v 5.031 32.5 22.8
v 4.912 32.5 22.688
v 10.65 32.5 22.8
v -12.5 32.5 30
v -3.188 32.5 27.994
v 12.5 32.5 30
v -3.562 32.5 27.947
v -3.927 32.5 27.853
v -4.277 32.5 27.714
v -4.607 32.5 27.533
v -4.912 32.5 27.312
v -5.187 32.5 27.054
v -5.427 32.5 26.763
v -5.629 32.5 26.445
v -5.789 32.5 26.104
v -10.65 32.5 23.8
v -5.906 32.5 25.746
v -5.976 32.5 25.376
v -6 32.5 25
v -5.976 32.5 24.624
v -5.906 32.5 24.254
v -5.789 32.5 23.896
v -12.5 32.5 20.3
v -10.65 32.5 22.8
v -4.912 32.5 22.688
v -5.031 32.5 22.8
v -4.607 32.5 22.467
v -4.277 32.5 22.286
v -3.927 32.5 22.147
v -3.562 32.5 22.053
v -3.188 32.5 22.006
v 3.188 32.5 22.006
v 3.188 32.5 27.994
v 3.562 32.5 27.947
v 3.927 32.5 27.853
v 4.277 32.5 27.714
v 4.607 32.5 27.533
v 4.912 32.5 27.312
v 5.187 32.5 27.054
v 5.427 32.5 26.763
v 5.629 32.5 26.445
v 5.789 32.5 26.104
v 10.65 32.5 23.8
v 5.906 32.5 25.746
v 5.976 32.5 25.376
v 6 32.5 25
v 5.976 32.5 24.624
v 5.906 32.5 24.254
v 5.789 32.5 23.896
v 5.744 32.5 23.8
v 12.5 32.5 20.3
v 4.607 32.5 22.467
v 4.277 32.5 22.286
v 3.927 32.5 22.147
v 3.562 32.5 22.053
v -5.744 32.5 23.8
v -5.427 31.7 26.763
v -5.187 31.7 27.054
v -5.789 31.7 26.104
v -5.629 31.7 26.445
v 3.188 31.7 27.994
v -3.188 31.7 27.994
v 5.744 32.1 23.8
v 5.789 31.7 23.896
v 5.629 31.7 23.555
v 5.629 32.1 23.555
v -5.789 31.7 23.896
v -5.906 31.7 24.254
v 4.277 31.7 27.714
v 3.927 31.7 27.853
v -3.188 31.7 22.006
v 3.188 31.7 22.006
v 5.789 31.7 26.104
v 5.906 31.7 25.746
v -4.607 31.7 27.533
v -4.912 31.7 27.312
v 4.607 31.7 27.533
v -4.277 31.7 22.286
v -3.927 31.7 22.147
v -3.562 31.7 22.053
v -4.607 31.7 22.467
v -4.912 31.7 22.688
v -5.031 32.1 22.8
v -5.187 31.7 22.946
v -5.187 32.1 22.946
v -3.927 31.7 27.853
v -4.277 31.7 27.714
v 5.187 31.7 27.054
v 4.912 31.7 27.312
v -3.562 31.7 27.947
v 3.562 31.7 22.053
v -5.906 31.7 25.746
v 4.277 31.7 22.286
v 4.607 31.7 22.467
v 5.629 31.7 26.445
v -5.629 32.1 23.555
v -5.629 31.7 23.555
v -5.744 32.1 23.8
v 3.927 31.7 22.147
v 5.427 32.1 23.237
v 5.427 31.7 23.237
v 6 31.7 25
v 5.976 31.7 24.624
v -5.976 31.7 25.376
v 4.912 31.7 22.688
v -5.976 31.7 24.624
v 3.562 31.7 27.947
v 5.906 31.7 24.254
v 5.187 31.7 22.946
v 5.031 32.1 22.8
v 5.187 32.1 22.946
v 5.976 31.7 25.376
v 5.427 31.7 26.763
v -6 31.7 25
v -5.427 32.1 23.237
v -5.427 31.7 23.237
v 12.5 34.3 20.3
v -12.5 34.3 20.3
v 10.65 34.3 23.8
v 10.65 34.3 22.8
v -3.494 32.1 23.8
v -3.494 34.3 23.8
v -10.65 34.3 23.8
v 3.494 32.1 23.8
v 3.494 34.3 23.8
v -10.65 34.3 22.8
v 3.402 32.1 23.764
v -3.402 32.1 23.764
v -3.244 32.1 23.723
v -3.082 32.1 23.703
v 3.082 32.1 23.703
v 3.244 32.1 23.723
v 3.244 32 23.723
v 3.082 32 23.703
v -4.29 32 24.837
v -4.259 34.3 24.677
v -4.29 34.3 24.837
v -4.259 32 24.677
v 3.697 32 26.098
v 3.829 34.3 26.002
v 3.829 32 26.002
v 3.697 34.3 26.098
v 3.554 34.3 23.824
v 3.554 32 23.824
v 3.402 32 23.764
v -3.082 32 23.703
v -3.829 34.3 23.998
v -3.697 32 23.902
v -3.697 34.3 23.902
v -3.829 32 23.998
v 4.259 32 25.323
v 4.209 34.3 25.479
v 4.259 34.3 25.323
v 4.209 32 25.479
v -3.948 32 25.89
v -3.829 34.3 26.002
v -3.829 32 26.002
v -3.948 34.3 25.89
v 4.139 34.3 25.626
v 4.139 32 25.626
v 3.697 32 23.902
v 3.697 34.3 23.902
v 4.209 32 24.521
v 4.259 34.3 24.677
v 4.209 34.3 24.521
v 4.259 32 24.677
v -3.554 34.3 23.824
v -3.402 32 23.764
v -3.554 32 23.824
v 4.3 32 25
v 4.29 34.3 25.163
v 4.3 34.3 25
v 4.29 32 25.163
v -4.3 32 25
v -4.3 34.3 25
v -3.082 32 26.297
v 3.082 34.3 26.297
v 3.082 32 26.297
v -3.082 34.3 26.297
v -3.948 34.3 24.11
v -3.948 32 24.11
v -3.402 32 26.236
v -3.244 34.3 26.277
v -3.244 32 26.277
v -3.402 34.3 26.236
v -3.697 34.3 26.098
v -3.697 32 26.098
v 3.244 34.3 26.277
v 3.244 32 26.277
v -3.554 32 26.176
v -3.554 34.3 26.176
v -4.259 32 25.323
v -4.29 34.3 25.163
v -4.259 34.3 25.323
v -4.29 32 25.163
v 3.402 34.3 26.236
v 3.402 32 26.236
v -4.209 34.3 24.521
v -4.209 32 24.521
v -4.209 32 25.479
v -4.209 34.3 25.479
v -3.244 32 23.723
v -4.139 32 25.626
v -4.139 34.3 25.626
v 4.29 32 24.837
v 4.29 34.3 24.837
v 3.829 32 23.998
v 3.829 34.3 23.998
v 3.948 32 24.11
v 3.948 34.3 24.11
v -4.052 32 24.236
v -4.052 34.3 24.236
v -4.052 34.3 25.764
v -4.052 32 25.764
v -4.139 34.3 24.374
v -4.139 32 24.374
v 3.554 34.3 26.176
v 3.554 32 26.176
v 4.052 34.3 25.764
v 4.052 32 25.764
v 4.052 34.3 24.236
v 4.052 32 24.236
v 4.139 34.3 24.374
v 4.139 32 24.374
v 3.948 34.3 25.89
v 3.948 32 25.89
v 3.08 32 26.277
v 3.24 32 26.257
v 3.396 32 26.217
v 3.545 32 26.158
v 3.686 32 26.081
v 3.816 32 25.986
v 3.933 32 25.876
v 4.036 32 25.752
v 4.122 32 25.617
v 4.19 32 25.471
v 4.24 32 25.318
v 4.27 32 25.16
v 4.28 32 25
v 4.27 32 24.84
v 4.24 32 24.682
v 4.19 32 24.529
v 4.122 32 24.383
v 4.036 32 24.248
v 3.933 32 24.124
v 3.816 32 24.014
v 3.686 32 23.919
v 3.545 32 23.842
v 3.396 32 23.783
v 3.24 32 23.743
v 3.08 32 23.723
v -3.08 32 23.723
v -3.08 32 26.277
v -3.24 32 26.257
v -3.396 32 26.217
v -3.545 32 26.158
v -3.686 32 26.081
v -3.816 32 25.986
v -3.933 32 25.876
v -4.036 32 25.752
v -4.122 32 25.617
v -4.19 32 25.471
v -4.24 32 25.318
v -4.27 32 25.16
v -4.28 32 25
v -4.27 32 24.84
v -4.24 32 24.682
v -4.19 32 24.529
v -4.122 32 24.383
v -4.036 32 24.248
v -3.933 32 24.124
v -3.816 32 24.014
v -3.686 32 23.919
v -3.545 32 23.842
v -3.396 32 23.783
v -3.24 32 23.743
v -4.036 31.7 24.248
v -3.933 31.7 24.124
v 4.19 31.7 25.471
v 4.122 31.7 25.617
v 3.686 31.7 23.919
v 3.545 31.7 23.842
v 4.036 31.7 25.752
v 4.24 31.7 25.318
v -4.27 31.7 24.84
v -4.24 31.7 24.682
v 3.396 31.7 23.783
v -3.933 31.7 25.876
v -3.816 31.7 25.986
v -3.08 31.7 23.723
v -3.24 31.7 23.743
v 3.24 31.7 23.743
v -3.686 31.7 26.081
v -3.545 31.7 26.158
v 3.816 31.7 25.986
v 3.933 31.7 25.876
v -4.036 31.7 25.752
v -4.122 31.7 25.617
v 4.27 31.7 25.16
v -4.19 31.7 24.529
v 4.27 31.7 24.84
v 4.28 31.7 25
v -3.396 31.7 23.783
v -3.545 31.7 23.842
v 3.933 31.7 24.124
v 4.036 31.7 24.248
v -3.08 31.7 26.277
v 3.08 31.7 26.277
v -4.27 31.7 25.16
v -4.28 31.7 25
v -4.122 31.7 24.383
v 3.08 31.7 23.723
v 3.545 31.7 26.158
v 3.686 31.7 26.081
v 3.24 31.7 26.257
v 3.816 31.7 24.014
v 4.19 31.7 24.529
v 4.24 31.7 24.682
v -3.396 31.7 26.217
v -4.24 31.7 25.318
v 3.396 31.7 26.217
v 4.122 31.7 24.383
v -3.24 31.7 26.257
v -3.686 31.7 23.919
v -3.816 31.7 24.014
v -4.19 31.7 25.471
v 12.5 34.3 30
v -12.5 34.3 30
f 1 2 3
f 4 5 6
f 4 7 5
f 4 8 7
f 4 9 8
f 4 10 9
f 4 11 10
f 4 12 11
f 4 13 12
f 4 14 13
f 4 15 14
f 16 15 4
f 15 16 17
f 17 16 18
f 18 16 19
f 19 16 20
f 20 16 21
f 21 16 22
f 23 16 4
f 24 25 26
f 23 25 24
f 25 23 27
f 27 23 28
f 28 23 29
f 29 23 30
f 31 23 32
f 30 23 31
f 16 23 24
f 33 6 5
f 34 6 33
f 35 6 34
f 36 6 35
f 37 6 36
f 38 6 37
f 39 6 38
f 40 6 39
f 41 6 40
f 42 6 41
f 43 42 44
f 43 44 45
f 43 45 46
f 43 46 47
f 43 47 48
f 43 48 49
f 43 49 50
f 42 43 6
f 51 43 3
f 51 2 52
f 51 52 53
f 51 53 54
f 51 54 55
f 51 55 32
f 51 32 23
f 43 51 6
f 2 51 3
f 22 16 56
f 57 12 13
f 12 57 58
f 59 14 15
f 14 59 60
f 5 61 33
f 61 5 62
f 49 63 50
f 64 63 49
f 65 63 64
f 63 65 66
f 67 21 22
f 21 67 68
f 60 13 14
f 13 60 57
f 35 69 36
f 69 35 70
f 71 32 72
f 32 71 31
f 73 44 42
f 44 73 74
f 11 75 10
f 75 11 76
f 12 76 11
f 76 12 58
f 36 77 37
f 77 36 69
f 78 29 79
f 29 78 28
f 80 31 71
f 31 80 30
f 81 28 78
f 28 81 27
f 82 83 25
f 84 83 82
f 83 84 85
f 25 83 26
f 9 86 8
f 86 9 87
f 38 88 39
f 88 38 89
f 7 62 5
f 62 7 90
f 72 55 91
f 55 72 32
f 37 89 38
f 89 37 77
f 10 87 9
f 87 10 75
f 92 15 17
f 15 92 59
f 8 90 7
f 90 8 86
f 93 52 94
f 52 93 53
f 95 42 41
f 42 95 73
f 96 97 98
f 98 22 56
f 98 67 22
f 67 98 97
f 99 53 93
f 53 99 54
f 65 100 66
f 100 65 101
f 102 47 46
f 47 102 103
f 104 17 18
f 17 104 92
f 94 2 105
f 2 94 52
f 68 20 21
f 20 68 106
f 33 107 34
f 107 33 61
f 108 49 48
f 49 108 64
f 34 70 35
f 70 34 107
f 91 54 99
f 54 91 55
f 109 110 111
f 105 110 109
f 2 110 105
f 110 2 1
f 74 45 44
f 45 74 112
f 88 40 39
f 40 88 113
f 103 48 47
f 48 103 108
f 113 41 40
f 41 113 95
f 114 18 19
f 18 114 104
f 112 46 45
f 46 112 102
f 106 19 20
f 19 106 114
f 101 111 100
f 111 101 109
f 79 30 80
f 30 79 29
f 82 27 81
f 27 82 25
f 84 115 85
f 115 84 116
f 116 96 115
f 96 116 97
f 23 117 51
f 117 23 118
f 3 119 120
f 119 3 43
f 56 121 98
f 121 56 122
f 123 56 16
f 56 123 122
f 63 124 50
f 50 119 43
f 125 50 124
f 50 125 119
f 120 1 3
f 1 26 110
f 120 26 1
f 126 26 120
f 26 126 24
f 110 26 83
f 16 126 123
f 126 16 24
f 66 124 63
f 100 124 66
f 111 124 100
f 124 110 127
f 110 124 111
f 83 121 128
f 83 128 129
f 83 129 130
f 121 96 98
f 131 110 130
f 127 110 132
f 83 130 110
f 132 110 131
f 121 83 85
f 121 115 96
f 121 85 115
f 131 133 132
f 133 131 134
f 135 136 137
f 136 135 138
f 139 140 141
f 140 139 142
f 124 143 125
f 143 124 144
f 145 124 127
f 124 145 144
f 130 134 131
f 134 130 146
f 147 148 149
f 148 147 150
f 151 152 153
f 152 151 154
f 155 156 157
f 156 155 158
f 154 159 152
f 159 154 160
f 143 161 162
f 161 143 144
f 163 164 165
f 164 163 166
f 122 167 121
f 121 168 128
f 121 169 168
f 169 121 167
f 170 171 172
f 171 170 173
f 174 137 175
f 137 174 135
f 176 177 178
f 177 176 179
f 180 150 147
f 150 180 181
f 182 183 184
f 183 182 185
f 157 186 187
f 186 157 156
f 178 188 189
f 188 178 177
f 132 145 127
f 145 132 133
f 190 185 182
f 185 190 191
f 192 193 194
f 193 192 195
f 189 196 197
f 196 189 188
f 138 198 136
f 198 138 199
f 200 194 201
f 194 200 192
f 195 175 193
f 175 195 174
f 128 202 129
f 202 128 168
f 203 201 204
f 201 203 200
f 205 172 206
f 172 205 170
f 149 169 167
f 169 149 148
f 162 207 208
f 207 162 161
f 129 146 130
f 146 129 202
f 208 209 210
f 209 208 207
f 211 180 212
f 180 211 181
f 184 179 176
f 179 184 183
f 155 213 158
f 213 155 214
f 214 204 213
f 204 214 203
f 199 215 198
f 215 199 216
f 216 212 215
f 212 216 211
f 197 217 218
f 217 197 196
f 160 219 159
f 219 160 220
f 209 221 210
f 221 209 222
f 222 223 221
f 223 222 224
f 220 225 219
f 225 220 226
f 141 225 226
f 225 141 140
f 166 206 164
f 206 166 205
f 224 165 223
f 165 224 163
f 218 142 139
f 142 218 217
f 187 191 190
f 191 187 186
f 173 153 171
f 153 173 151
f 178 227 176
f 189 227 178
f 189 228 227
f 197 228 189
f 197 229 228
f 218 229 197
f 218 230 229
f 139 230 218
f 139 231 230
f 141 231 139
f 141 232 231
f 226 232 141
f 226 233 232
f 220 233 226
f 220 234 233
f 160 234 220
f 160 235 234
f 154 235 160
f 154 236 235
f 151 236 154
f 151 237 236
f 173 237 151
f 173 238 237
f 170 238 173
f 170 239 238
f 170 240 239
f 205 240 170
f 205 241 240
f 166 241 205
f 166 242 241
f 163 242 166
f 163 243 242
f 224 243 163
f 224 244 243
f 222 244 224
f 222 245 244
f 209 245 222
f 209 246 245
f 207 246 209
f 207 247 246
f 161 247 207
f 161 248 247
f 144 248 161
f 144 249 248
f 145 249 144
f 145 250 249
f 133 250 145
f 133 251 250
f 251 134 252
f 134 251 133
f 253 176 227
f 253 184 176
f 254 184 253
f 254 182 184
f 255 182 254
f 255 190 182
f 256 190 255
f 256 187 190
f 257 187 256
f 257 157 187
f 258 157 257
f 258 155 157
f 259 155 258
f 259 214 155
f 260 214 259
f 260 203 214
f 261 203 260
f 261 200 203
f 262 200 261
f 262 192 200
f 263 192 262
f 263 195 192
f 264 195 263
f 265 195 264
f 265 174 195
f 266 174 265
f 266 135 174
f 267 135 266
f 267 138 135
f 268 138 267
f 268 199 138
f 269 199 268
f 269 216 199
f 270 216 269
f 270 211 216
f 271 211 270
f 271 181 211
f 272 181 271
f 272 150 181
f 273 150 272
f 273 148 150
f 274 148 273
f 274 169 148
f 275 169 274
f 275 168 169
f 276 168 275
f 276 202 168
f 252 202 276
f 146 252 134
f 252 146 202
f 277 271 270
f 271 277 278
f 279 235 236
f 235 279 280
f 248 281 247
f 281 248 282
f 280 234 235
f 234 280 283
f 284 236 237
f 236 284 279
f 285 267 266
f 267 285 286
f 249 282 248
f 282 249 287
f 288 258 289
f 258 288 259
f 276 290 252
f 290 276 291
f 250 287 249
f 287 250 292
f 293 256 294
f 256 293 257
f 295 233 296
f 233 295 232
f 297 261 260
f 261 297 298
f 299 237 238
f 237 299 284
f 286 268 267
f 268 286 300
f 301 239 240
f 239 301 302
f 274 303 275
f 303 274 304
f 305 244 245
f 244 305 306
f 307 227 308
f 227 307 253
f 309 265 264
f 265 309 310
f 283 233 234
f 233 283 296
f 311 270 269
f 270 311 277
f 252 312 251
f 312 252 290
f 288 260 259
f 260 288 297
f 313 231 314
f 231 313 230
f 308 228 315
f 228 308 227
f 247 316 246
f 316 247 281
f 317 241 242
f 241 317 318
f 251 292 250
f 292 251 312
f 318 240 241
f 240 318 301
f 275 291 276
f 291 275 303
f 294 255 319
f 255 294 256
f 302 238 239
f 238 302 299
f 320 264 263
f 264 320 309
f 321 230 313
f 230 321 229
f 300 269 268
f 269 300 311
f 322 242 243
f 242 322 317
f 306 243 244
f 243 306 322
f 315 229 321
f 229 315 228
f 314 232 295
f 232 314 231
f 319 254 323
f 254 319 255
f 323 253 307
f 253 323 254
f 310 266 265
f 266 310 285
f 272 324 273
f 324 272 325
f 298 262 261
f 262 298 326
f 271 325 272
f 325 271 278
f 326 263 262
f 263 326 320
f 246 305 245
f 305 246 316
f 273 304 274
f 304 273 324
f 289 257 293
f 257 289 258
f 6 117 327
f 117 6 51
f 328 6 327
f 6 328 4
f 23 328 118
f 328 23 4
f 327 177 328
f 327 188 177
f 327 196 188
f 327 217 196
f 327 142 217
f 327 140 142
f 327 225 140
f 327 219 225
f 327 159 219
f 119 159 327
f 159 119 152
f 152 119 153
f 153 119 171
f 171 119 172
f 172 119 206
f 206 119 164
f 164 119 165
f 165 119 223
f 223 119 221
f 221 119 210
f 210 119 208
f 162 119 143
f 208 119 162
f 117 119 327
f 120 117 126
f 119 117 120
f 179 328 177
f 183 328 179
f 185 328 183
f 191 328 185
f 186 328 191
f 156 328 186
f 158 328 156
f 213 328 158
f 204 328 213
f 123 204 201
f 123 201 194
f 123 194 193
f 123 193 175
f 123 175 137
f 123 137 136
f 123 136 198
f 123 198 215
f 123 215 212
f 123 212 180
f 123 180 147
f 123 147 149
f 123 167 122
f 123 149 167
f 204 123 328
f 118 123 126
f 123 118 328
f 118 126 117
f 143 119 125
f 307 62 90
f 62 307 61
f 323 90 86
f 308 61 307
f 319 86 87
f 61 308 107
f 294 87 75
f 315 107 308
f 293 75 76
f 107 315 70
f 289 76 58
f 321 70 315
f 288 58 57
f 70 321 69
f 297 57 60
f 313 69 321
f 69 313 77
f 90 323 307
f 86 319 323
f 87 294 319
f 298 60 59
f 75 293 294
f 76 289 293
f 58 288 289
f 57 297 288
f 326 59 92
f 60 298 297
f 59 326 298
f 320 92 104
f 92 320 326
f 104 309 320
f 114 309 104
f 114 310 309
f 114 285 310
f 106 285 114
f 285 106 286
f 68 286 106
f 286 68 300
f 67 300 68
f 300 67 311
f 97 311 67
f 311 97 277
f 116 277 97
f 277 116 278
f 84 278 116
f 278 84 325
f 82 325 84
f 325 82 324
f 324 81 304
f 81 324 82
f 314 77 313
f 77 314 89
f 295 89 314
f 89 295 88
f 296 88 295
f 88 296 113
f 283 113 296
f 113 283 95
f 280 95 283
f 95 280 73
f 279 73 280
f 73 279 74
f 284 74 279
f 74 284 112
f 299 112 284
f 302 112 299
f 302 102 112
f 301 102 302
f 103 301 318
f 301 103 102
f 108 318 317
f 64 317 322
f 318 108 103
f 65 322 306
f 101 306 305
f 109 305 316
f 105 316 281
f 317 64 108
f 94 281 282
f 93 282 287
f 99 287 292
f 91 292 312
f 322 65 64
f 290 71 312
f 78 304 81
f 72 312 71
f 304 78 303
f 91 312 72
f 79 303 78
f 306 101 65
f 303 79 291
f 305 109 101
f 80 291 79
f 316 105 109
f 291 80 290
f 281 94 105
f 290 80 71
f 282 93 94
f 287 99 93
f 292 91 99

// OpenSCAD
difference () {
  translate ([0, 33, 25]) {
    cube ([25, 2.6, 10], center=true);
  }
  union () {
    translate ([0, 66.5, 19.3]) {
      cube ([45, 70, 2], center=true);
    }
    translate ([0, 67.1, 23.3]) {
      cube ([21.3, 70, 1], center=true);
    }
    difference () {
      translate ([0, 31.5, 25]) {
        cube ([50, 2, 50], center=true);
      }
      hull () {
        translate ([3, 31, 25]) {
          rotate (a=90.0, v=[1, 0, 0]) {
            cylinder ($fn=50, h=4, r=3, center=true);
          }
        }
        mirror ([1, 0, 0]) {
          translate ([3, 31, 25]) {
            rotate (a=90.0, v=[1, 0, 0]) {
              cylinder ($fn=50, h=4, r=3, center=true);
            }
          }
        }
      }
    }
    hull () {
      translate ([3, 35, 25]) {
        rotate (a=90.0, v=[1, 0, 0]) {
          cylinder ($fn=50, h=6, r=1.3, center=true);
        }
      }
      mirror ([1, 0, 0]) {
        translate ([3, 35, 25]) {
          rotate (a=90.0, v=[1, 0, 0]) {
            cylinder ($fn=50, h=6, r=1.3, center=true);
          }
        }
      }
    }
    hull () {
      translate ([3, 30, 25]) {
        rotate (a=90.0, v=[1, 0, 0]) {
          cylinder ($fn=50, h=6, r=1.28, center=true);
        }
      }
      mirror ([1, 0, 0]) {
        translate ([3, 30, 25]) {
          rotate (a=90.0, v=[1, 0, 0]) {
            cylinder ($fn=50, h=6, r=1.28, center=true);
          }
        }
      }
    }
  }
}
